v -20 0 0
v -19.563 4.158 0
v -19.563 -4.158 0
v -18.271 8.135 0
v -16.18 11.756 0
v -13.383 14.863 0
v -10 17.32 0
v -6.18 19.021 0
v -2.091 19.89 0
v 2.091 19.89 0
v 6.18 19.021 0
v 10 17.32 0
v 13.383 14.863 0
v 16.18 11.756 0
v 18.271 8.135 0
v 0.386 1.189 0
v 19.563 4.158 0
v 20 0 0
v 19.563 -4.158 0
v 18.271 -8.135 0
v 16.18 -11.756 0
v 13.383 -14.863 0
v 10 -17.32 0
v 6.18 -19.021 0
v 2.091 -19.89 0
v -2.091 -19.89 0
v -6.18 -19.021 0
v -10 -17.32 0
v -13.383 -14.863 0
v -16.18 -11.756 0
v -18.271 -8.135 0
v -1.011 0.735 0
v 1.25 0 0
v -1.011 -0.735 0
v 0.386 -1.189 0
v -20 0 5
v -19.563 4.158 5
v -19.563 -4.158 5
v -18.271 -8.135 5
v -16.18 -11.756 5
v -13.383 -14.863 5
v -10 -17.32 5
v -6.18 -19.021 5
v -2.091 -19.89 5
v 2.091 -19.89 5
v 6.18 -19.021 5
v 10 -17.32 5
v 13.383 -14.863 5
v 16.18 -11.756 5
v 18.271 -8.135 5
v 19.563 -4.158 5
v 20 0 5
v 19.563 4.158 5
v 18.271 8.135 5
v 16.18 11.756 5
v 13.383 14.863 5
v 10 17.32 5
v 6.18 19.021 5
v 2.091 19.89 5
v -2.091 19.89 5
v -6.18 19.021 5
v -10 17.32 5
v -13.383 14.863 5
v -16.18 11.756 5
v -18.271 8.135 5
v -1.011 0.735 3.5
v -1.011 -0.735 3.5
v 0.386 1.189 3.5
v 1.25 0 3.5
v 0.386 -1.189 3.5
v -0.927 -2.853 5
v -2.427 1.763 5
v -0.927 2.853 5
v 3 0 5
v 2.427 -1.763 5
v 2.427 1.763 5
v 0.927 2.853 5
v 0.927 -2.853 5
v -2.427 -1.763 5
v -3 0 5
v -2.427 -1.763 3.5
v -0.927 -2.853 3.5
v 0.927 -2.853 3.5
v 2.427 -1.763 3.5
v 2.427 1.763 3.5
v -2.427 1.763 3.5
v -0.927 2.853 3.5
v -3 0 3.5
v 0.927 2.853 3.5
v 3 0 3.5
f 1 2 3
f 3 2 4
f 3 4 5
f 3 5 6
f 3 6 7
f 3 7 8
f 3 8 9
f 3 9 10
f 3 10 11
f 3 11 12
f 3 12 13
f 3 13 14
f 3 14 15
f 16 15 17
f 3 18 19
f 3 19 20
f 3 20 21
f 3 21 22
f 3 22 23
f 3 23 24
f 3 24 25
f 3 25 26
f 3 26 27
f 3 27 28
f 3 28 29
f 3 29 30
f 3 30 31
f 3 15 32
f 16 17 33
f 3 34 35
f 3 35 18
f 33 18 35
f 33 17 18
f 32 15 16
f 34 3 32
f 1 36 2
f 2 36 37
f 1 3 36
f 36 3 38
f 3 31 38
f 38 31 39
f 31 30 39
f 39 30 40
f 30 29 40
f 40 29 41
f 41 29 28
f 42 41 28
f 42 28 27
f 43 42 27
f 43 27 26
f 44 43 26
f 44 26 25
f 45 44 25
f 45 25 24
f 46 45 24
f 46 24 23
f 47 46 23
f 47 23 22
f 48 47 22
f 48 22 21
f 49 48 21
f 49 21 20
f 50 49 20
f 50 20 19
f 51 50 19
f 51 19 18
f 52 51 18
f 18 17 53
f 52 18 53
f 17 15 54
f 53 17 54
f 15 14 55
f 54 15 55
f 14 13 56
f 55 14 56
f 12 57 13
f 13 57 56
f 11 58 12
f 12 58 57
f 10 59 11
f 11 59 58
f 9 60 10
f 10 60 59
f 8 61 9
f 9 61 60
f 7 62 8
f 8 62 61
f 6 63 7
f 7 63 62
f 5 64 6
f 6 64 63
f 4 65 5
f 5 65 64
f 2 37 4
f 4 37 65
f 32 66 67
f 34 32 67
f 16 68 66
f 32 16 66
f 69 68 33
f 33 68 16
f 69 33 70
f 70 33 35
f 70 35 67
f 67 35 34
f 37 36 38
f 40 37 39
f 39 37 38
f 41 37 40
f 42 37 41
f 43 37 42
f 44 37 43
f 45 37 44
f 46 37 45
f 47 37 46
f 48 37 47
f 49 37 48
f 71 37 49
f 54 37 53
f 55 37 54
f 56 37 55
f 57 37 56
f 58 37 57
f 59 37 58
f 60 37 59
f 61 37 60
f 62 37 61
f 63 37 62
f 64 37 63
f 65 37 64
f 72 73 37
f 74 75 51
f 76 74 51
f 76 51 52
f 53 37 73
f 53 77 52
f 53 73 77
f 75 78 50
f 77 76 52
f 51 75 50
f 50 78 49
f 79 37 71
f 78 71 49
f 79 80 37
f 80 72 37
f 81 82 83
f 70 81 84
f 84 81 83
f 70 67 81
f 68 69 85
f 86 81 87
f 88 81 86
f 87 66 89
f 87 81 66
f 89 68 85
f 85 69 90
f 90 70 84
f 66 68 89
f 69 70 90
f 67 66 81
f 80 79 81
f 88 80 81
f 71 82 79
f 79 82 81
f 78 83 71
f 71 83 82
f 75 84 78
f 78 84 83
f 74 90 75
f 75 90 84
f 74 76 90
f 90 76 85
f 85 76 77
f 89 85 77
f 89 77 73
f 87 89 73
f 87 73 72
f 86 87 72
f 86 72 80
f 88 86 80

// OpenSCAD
/**
 * Module Name: RobotLeg.scad
 * 
 * Description: 
 *     This is a "wheel" to be used by the robot
 */
module RobotLeg(radius=20)
{
	width = 5;
	servoMountDiameter = 2.5;
	screwDiameter = 6;
	screwInset = 1.5;

	difference()
	{
		union()
		{
			cylinder(r=radius, width);
		}
		cylinder(d=servoMountDiameter,width);
		translate([0,0,width-screwInset])
			cylinder(d=screwDiameter, screwInset);
	}
}
RobotLeg();
